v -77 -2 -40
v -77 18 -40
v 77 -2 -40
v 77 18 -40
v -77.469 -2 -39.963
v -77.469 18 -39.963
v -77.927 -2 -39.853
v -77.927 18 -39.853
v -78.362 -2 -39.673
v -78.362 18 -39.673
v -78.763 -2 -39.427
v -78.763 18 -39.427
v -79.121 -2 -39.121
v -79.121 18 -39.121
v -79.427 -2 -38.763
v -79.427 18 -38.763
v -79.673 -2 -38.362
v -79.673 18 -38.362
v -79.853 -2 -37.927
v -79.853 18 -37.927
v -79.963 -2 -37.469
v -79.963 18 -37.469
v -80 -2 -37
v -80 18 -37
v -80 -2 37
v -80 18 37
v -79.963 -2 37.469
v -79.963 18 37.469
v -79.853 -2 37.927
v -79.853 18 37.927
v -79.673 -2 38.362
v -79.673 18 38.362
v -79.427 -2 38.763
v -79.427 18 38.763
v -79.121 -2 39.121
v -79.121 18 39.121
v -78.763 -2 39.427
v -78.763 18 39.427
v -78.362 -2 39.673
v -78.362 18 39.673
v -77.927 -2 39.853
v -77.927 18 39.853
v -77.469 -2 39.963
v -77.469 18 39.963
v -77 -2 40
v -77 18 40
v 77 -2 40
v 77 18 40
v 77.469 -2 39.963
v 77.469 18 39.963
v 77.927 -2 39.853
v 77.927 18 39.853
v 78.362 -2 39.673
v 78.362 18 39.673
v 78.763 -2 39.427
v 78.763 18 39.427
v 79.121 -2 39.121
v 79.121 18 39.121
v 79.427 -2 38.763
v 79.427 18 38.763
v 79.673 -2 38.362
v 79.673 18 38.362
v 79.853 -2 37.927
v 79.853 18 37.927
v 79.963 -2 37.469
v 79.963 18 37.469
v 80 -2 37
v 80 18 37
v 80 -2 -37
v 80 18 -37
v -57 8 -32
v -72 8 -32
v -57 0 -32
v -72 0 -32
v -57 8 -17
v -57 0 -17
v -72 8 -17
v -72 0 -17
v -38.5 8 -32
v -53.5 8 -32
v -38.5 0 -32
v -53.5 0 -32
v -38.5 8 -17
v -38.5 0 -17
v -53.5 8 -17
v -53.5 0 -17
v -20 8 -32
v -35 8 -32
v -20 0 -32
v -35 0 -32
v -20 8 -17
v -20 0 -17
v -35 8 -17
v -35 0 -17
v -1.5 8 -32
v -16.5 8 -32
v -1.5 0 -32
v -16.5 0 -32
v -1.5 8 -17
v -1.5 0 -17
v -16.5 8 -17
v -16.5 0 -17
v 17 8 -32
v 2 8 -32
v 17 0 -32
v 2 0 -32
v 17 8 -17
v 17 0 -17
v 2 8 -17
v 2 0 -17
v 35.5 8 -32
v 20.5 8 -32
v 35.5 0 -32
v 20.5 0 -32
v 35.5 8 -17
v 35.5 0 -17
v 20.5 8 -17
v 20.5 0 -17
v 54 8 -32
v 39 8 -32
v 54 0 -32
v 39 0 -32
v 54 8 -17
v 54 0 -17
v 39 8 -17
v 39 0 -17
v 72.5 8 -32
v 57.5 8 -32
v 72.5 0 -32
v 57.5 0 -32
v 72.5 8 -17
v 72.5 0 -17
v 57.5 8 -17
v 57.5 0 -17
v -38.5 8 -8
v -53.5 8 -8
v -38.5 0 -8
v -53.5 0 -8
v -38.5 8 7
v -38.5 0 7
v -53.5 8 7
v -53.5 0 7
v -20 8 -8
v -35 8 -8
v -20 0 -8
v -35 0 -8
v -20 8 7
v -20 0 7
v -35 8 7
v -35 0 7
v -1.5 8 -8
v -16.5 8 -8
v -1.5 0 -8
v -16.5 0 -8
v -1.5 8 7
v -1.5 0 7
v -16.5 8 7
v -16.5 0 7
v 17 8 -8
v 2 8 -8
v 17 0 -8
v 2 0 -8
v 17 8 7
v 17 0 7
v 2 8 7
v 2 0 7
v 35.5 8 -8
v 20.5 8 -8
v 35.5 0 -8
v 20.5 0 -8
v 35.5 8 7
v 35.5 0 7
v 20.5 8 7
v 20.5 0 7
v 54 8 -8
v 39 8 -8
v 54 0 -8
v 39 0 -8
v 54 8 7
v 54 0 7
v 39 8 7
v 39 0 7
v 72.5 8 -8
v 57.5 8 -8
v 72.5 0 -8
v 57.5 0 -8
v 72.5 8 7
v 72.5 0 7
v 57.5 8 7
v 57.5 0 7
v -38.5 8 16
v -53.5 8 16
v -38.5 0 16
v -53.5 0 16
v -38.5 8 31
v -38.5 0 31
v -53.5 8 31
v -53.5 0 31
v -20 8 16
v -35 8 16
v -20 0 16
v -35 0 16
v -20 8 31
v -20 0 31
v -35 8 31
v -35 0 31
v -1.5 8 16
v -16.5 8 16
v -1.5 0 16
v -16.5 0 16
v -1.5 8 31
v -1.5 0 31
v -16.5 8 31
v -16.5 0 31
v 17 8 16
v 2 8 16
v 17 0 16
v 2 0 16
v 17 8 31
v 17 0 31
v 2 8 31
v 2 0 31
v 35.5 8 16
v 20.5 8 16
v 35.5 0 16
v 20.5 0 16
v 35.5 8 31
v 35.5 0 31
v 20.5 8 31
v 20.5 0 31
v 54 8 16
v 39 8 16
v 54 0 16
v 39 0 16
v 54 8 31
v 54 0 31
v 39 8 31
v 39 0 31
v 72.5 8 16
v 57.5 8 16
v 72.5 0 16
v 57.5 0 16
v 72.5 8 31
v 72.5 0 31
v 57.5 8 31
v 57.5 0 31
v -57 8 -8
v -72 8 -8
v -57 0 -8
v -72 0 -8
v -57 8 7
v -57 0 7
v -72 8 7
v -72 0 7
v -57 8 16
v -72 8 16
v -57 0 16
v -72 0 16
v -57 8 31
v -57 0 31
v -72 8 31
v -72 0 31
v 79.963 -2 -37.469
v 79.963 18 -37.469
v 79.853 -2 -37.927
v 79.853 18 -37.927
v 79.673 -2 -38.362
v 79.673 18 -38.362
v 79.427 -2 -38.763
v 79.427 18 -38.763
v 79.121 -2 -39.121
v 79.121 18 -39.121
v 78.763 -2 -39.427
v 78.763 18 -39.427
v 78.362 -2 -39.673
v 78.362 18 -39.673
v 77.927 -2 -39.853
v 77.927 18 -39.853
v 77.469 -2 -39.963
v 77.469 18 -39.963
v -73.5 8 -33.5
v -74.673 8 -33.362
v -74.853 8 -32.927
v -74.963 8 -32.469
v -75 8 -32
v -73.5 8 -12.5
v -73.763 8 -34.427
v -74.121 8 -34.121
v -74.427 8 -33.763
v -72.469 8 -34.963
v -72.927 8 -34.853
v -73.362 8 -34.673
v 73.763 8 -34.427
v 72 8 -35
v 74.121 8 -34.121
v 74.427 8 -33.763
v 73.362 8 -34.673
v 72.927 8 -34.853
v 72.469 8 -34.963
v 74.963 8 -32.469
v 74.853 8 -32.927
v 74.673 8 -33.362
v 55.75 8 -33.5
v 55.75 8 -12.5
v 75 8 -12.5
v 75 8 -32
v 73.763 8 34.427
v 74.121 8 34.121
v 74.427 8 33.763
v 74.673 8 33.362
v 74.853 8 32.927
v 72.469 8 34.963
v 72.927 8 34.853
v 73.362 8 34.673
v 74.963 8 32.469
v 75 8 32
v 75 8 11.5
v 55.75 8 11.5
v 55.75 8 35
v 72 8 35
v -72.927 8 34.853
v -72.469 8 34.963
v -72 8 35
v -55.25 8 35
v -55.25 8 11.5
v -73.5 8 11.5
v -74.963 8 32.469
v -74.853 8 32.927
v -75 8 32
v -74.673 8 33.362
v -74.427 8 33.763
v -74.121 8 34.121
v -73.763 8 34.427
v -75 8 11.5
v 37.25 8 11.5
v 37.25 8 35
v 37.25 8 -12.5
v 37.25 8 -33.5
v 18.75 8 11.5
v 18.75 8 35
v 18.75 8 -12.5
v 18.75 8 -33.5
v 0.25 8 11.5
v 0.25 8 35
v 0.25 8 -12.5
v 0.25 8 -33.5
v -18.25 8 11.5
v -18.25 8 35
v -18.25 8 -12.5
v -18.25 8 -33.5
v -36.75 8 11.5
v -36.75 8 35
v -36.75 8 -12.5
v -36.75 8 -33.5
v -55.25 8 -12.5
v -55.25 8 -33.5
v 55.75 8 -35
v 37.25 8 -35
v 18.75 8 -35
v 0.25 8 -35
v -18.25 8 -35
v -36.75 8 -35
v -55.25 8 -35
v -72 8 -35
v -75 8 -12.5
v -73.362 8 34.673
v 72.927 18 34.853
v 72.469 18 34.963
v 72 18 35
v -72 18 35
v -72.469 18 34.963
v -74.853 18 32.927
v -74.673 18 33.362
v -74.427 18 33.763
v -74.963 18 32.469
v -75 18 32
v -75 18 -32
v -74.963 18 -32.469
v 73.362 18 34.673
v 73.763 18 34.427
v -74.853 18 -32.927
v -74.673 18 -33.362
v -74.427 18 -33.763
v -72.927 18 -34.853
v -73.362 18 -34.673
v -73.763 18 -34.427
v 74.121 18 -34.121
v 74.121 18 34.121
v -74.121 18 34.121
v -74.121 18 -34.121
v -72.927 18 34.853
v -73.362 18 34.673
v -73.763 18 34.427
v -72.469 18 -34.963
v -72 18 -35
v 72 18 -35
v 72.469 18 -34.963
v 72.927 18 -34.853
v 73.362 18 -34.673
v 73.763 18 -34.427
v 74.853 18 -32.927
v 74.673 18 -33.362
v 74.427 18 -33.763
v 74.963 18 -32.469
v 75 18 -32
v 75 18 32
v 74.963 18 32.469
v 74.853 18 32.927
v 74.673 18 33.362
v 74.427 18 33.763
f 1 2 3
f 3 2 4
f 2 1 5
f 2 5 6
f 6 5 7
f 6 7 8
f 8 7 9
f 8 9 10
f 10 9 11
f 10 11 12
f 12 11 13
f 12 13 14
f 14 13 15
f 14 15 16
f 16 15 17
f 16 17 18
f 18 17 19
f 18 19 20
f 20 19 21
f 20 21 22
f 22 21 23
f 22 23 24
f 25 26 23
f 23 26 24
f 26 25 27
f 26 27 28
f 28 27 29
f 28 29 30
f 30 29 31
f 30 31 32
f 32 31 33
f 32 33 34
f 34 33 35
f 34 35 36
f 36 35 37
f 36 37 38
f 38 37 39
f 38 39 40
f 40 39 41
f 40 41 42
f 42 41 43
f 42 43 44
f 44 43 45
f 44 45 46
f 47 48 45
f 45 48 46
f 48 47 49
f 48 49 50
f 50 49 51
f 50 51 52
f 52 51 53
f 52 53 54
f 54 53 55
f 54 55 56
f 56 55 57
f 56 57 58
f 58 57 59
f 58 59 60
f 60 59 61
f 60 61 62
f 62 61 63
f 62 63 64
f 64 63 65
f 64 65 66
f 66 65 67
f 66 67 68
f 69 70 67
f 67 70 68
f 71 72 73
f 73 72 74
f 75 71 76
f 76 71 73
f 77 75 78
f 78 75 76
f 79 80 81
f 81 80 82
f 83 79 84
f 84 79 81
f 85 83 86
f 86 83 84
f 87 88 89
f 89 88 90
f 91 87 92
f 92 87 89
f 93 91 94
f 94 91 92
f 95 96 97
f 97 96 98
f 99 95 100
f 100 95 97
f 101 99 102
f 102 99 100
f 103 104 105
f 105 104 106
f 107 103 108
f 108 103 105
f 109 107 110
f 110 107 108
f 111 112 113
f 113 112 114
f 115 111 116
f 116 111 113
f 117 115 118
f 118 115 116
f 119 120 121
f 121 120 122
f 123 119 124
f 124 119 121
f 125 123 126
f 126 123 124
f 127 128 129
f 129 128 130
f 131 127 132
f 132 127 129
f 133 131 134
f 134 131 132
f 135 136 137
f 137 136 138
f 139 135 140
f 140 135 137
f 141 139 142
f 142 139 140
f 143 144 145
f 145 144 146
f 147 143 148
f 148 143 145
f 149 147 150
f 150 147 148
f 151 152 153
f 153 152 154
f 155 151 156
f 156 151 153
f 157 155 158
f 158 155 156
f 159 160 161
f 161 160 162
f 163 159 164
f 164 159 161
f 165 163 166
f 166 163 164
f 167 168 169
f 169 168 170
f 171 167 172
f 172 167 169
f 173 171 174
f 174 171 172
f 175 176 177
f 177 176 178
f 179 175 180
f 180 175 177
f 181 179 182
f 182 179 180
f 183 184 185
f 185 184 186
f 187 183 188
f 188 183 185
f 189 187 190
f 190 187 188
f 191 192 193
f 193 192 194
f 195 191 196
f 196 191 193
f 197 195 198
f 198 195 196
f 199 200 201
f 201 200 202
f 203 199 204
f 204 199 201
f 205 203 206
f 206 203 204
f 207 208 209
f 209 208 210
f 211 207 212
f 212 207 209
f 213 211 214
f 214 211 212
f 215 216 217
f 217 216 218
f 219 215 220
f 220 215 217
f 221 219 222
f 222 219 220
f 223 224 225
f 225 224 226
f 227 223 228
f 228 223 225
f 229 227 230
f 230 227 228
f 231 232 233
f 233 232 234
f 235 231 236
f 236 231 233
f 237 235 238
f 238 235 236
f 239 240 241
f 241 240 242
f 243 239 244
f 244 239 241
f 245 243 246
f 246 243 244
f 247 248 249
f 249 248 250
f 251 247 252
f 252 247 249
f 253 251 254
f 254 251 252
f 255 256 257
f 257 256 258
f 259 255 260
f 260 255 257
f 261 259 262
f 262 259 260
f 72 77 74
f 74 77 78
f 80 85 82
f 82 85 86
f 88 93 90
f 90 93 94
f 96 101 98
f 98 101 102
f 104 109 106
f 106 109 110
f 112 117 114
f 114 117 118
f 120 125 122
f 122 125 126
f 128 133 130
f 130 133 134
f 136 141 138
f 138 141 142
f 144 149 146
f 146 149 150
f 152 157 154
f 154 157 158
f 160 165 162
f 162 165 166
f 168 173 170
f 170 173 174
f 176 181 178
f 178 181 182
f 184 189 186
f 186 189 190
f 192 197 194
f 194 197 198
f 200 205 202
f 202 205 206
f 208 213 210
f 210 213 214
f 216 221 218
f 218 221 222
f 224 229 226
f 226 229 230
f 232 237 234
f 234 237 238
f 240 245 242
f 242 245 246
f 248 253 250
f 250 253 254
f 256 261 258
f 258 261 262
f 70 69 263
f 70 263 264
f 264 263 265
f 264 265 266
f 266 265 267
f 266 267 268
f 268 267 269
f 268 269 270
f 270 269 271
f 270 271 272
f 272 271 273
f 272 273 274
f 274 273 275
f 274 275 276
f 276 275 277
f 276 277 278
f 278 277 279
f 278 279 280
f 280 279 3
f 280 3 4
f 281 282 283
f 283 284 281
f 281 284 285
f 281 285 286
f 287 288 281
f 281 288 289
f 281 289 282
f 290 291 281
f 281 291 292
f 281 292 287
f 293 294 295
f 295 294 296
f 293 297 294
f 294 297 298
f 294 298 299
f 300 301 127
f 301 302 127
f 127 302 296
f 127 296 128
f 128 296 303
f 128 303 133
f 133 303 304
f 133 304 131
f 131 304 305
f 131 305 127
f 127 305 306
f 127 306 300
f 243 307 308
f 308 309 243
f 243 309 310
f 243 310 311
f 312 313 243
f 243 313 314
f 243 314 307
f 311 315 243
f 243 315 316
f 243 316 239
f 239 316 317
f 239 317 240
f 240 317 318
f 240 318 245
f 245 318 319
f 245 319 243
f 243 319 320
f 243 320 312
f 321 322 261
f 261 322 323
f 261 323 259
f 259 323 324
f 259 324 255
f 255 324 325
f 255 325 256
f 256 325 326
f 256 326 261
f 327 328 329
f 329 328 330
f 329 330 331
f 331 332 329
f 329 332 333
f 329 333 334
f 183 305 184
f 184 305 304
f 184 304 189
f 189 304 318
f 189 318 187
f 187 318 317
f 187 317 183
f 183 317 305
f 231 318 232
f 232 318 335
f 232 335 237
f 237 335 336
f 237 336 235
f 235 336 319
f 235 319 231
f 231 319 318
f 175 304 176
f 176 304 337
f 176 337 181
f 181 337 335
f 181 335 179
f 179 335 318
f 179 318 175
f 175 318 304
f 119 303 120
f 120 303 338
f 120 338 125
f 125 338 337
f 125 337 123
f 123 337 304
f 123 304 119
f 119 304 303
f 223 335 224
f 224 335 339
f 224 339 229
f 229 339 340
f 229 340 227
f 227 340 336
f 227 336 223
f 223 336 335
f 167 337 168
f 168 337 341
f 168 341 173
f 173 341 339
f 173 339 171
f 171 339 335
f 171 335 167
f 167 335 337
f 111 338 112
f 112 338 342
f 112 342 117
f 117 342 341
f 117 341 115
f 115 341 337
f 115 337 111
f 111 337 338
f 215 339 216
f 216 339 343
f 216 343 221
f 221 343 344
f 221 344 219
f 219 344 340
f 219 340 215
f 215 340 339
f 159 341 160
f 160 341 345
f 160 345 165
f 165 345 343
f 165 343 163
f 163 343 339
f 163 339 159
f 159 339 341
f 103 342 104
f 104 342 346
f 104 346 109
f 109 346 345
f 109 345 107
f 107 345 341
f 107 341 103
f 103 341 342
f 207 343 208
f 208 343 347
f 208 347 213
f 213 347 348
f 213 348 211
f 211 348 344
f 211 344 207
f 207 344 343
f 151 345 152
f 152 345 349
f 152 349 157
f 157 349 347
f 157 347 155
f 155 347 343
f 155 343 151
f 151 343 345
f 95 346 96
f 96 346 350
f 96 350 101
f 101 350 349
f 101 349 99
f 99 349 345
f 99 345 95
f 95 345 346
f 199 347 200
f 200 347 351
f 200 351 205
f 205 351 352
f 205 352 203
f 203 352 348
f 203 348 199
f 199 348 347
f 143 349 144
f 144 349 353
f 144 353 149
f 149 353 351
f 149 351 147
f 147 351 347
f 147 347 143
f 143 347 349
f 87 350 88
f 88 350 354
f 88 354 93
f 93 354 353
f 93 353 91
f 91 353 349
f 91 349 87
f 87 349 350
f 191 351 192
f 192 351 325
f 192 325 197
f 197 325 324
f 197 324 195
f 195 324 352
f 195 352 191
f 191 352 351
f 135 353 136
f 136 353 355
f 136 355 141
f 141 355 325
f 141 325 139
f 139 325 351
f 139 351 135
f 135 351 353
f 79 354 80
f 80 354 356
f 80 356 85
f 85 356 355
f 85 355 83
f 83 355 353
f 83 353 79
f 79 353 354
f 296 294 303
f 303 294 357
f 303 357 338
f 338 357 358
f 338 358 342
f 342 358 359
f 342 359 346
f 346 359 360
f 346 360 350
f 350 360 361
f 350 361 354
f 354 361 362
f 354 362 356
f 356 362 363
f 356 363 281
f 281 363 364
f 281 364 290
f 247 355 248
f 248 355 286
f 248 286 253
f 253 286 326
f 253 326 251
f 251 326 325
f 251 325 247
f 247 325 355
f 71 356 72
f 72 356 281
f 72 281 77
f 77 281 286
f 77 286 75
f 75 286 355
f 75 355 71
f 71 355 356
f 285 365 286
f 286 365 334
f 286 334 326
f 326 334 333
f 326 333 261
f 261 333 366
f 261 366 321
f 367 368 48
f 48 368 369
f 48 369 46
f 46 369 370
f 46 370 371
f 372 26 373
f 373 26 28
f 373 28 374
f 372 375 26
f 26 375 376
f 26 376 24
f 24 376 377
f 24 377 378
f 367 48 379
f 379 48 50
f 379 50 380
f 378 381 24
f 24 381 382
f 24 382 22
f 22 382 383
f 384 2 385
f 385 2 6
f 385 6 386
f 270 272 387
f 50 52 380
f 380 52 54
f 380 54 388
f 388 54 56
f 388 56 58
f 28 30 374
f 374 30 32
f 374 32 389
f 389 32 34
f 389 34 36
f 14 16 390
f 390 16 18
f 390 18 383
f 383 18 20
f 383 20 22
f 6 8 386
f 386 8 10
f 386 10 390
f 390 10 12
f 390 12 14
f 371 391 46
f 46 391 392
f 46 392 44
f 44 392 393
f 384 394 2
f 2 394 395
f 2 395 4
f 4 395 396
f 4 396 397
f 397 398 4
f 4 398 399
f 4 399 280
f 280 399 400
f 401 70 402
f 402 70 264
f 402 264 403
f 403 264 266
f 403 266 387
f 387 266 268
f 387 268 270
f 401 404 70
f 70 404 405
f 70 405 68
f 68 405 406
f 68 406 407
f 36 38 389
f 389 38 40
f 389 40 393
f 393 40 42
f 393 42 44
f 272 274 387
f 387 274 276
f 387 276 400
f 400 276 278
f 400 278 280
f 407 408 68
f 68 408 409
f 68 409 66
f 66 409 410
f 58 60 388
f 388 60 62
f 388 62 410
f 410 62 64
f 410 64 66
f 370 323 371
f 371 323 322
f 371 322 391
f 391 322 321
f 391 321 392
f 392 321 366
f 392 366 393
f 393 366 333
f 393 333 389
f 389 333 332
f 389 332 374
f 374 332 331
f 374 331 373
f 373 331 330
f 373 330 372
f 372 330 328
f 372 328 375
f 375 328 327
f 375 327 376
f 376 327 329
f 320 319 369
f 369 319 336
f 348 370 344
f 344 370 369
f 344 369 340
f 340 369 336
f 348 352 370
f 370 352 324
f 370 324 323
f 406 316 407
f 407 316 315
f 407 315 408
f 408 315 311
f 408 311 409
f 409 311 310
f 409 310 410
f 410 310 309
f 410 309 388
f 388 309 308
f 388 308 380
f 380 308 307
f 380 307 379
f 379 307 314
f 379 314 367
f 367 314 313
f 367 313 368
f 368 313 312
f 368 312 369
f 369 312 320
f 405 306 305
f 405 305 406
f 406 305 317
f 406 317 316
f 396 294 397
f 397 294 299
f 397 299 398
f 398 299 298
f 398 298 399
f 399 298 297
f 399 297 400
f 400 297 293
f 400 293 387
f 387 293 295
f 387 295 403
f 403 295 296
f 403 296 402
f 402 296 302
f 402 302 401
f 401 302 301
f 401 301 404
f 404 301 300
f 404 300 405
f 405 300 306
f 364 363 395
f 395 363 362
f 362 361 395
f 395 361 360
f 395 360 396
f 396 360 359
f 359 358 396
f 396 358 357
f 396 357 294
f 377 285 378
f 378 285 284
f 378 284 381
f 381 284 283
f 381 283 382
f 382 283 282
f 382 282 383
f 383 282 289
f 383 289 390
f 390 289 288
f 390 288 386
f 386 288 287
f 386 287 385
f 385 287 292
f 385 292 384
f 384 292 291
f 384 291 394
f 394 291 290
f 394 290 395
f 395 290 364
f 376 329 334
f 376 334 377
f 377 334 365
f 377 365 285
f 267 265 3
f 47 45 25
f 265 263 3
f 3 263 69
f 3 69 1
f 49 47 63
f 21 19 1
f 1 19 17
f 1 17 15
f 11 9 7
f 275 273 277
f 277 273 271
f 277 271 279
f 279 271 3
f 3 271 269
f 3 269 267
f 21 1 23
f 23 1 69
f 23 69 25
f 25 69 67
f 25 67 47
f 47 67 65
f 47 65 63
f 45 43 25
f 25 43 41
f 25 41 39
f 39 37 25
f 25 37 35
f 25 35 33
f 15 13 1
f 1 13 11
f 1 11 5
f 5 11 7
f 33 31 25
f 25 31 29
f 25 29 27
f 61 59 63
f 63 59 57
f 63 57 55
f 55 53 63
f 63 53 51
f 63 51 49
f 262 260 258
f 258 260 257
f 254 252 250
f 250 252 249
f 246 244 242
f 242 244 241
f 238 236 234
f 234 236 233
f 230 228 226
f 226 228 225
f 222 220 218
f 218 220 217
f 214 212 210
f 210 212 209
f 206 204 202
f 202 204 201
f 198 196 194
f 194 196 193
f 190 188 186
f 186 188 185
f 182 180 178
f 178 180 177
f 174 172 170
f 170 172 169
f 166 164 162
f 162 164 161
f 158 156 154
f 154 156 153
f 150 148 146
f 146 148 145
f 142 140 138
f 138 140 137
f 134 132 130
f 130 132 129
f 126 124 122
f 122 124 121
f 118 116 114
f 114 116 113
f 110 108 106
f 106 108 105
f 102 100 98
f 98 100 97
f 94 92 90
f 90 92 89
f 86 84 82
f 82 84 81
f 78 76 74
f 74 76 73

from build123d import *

# Parameters (mm, degrees)
SKETCH1_W           = 15
SKETCH1_H           = 15
BOSS_EXTRUDE1_DEPTH = 8
BOSS_EXTRUDE2_DEPTH = 18
BOSS_EXTRUDE3_START = -2
BOSS_EXTRUDE3_DEPTH = 2


with BuildPart() as part:
    # Sketch1 → Boss-Extrude1 (new body)
    with BuildSketch(Plane(origin=(0, 0, 0), x_dir=(1, 0, 0), z_dir=(0, 1, 0))):
        with BuildLine():
            Line((77, 40), (-77, 40))
            ThreePointArc((-77, 40), (-79.121320344, 39.121320344), (-80, 37))
            Line((-80, 37), (-80, -37))
            ThreePointArc((-80, -37), (-79.121320344, -39.121320344), (-77, -40))
            Line((-77, -40), (77, -40))
            ThreePointArc((77, -40), (79.121320344, -39.121320344), (80, -37))
            Line((80, -37), (80, 37))
            ThreePointArc((80, 37), (79.121320344, 39.121320344), (77, 40))
        make_face()
        with Locations((-64.5, -23.5)):
            Rectangle(SKETCH1_W, SKETCH1_H, mode=Mode.SUBTRACT)
        with Locations((-46, -23.5)):
            Rectangle(SKETCH1_W, SKETCH1_H, mode=Mode.SUBTRACT)
        with Locations((-27.5, -23.5)):
            Rectangle(SKETCH1_W, SKETCH1_H, mode=Mode.SUBTRACT)
        with Locations((-9, -23.5)):
            Rectangle(SKETCH1_W, SKETCH1_H, mode=Mode.SUBTRACT)
        with Locations((9.5, -23.5)):
            Rectangle(SKETCH1_W, SKETCH1_H, mode=Mode.SUBTRACT)
        with Locations((28, -23.5)):
            Rectangle(SKETCH1_W, SKETCH1_H, mode=Mode.SUBTRACT)
        with Locations((46.5, -23.5)):
            Rectangle(SKETCH1_W, SKETCH1_H, mode=Mode.SUBTRACT)
        with Locations((65, -23.5)):
            Rectangle(SKETCH1_W, SKETCH1_H, mode=Mode.SUBTRACT)
        with Locations((-64.5, 0.5)):
            Rectangle(SKETCH1_W, SKETCH1_H, mode=Mode.SUBTRACT)
        with Locations((-46, 0.5)):
            Rectangle(SKETCH1_W, SKETCH1_H, mode=Mode.SUBTRACT)
        with Locations((-27.5, 0.5)):
            Rectangle(SKETCH1_W, SKETCH1_H, mode=Mode.SUBTRACT)
        with Locations((-9, 0.5)):
            Rectangle(SKETCH1_W, SKETCH1_H, mode=Mode.SUBTRACT)
        with Locations((-64.5, 24.5)):
            Rectangle(SKETCH1_W, SKETCH1_H, mode=Mode.SUBTRACT)
        with Locations((-46, 24.5)):
            Rectangle(SKETCH1_W, SKETCH1_H, mode=Mode.SUBTRACT)
        with Locations((-27.5, 24.5)):
            Rectangle(SKETCH1_W, SKETCH1_H, mode=Mode.SUBTRACT)
        with Locations((-9, 24.5)):
            Rectangle(SKETCH1_W, SKETCH1_H, mode=Mode.SUBTRACT)
        with Locations((9.5, 0.5)):
            Rectangle(SKETCH1_W, SKETCH1_H, mode=Mode.SUBTRACT)
        with Locations((28, 0.5)):
            Rectangle(SKETCH1_W, SKETCH1_H, mode=Mode.SUBTRACT)
        with Locations((46.5, 0.5)):
            Rectangle(SKETCH1_W, SKETCH1_H, mode=Mode.SUBTRACT)
        with Locations((65, 0.5)):
            Rectangle(SKETCH1_W, SKETCH1_H, mode=Mode.SUBTRACT)
        with Locations((9.5, 24.5)):
            Rectangle(SKETCH1_W, SKETCH1_H, mode=Mode.SUBTRACT)
        with Locations((28, 24.5)):
            Rectangle(SKETCH1_W, SKETCH1_H, mode=Mode.SUBTRACT)
        with Locations((46.5, 24.5)):
            Rectangle(SKETCH1_W, SKETCH1_H, mode=Mode.SUBTRACT)
        with Locations((65, 24.5)):
            Rectangle(SKETCH1_W, SKETCH1_H, mode=Mode.SUBTRACT)
    extrude(amount=BOSS_EXTRUDE1_DEPTH)

    # Sketch1<3> → Boss-Extrude2 (add)
    with BuildSketch(Plane(origin=(0, 0, 0), x_dir=(1, 0, 0), z_dir=(0, 1, 0))):
        with BuildLine():
            Line((-77, 40), (77, 40))
            ThreePointArc((77, 40), (79.121320344, 39.121320344), (80, 37))
            Line((80, 37), (80, -37))
            ThreePointArc((80, -37), (79.121320344, -39.121320344), (77, -40))
            Line((77, -40), (-77, -40))
            ThreePointArc((-77, -40), (-79.121320344, -39.121320344), (-80, -37))
            Line((-80, -37), (-80, 37))
            ThreePointArc((-80, 37), (-79.121320344, 39.121320344), (-77, 40))
        make_face()
        with BuildLine():
            Line((-72, 35), (72, 35))
            ThreePointArc((72, 35), (74.121320344, 34.121320344), (75, 32))
            Line((75, 32), (75, -32))
            ThreePointArc((75, -32), (74.121320344, -34.121320344), (72, -35))
            Line((72, -35), (-72, -35))
            ThreePointArc((-72, -35), (-74.121320344, -34.121320344), (-75, -32))
            Line((-75, -32), (-75, 32))
            ThreePointArc((-75, 32), (-74.121320344, 34.121320344), (-72, 35))
        make_face(mode=Mode.SUBTRACT)
    extrude(amount=BOSS_EXTRUDE2_DEPTH)

    # Sketch1<4> → Boss-Extrude3 (add)
    with BuildSketch(Plane(origin=(0, 0, 0), x_dir=(1, 0, 0), z_dir=(0, 1, 0)).offset(BOSS_EXTRUDE3_START)):
        with BuildLine():
            Line((-77, 40), (77, 40))
            ThreePointArc((77, 40), (79.121320344, 39.121320344), (80, 37))
            Line((80, 37), (80, -37))
            ThreePointArc((80, -37), (79.121320344, -39.121320344), (77, -40))
            Line((77, -40), (-77, -40))
            ThreePointArc((-77, -40), (-79.121320344, -39.121320344), (-80, -37))
            Line((-80, -37), (-80, 37))
            ThreePointArc((-80, 37), (-79.121320344, 39.121320344), (-77, 40))
        make_face()
    extrude(amount=BOSS_EXTRUDE3_DEPTH)


solid = part.part
